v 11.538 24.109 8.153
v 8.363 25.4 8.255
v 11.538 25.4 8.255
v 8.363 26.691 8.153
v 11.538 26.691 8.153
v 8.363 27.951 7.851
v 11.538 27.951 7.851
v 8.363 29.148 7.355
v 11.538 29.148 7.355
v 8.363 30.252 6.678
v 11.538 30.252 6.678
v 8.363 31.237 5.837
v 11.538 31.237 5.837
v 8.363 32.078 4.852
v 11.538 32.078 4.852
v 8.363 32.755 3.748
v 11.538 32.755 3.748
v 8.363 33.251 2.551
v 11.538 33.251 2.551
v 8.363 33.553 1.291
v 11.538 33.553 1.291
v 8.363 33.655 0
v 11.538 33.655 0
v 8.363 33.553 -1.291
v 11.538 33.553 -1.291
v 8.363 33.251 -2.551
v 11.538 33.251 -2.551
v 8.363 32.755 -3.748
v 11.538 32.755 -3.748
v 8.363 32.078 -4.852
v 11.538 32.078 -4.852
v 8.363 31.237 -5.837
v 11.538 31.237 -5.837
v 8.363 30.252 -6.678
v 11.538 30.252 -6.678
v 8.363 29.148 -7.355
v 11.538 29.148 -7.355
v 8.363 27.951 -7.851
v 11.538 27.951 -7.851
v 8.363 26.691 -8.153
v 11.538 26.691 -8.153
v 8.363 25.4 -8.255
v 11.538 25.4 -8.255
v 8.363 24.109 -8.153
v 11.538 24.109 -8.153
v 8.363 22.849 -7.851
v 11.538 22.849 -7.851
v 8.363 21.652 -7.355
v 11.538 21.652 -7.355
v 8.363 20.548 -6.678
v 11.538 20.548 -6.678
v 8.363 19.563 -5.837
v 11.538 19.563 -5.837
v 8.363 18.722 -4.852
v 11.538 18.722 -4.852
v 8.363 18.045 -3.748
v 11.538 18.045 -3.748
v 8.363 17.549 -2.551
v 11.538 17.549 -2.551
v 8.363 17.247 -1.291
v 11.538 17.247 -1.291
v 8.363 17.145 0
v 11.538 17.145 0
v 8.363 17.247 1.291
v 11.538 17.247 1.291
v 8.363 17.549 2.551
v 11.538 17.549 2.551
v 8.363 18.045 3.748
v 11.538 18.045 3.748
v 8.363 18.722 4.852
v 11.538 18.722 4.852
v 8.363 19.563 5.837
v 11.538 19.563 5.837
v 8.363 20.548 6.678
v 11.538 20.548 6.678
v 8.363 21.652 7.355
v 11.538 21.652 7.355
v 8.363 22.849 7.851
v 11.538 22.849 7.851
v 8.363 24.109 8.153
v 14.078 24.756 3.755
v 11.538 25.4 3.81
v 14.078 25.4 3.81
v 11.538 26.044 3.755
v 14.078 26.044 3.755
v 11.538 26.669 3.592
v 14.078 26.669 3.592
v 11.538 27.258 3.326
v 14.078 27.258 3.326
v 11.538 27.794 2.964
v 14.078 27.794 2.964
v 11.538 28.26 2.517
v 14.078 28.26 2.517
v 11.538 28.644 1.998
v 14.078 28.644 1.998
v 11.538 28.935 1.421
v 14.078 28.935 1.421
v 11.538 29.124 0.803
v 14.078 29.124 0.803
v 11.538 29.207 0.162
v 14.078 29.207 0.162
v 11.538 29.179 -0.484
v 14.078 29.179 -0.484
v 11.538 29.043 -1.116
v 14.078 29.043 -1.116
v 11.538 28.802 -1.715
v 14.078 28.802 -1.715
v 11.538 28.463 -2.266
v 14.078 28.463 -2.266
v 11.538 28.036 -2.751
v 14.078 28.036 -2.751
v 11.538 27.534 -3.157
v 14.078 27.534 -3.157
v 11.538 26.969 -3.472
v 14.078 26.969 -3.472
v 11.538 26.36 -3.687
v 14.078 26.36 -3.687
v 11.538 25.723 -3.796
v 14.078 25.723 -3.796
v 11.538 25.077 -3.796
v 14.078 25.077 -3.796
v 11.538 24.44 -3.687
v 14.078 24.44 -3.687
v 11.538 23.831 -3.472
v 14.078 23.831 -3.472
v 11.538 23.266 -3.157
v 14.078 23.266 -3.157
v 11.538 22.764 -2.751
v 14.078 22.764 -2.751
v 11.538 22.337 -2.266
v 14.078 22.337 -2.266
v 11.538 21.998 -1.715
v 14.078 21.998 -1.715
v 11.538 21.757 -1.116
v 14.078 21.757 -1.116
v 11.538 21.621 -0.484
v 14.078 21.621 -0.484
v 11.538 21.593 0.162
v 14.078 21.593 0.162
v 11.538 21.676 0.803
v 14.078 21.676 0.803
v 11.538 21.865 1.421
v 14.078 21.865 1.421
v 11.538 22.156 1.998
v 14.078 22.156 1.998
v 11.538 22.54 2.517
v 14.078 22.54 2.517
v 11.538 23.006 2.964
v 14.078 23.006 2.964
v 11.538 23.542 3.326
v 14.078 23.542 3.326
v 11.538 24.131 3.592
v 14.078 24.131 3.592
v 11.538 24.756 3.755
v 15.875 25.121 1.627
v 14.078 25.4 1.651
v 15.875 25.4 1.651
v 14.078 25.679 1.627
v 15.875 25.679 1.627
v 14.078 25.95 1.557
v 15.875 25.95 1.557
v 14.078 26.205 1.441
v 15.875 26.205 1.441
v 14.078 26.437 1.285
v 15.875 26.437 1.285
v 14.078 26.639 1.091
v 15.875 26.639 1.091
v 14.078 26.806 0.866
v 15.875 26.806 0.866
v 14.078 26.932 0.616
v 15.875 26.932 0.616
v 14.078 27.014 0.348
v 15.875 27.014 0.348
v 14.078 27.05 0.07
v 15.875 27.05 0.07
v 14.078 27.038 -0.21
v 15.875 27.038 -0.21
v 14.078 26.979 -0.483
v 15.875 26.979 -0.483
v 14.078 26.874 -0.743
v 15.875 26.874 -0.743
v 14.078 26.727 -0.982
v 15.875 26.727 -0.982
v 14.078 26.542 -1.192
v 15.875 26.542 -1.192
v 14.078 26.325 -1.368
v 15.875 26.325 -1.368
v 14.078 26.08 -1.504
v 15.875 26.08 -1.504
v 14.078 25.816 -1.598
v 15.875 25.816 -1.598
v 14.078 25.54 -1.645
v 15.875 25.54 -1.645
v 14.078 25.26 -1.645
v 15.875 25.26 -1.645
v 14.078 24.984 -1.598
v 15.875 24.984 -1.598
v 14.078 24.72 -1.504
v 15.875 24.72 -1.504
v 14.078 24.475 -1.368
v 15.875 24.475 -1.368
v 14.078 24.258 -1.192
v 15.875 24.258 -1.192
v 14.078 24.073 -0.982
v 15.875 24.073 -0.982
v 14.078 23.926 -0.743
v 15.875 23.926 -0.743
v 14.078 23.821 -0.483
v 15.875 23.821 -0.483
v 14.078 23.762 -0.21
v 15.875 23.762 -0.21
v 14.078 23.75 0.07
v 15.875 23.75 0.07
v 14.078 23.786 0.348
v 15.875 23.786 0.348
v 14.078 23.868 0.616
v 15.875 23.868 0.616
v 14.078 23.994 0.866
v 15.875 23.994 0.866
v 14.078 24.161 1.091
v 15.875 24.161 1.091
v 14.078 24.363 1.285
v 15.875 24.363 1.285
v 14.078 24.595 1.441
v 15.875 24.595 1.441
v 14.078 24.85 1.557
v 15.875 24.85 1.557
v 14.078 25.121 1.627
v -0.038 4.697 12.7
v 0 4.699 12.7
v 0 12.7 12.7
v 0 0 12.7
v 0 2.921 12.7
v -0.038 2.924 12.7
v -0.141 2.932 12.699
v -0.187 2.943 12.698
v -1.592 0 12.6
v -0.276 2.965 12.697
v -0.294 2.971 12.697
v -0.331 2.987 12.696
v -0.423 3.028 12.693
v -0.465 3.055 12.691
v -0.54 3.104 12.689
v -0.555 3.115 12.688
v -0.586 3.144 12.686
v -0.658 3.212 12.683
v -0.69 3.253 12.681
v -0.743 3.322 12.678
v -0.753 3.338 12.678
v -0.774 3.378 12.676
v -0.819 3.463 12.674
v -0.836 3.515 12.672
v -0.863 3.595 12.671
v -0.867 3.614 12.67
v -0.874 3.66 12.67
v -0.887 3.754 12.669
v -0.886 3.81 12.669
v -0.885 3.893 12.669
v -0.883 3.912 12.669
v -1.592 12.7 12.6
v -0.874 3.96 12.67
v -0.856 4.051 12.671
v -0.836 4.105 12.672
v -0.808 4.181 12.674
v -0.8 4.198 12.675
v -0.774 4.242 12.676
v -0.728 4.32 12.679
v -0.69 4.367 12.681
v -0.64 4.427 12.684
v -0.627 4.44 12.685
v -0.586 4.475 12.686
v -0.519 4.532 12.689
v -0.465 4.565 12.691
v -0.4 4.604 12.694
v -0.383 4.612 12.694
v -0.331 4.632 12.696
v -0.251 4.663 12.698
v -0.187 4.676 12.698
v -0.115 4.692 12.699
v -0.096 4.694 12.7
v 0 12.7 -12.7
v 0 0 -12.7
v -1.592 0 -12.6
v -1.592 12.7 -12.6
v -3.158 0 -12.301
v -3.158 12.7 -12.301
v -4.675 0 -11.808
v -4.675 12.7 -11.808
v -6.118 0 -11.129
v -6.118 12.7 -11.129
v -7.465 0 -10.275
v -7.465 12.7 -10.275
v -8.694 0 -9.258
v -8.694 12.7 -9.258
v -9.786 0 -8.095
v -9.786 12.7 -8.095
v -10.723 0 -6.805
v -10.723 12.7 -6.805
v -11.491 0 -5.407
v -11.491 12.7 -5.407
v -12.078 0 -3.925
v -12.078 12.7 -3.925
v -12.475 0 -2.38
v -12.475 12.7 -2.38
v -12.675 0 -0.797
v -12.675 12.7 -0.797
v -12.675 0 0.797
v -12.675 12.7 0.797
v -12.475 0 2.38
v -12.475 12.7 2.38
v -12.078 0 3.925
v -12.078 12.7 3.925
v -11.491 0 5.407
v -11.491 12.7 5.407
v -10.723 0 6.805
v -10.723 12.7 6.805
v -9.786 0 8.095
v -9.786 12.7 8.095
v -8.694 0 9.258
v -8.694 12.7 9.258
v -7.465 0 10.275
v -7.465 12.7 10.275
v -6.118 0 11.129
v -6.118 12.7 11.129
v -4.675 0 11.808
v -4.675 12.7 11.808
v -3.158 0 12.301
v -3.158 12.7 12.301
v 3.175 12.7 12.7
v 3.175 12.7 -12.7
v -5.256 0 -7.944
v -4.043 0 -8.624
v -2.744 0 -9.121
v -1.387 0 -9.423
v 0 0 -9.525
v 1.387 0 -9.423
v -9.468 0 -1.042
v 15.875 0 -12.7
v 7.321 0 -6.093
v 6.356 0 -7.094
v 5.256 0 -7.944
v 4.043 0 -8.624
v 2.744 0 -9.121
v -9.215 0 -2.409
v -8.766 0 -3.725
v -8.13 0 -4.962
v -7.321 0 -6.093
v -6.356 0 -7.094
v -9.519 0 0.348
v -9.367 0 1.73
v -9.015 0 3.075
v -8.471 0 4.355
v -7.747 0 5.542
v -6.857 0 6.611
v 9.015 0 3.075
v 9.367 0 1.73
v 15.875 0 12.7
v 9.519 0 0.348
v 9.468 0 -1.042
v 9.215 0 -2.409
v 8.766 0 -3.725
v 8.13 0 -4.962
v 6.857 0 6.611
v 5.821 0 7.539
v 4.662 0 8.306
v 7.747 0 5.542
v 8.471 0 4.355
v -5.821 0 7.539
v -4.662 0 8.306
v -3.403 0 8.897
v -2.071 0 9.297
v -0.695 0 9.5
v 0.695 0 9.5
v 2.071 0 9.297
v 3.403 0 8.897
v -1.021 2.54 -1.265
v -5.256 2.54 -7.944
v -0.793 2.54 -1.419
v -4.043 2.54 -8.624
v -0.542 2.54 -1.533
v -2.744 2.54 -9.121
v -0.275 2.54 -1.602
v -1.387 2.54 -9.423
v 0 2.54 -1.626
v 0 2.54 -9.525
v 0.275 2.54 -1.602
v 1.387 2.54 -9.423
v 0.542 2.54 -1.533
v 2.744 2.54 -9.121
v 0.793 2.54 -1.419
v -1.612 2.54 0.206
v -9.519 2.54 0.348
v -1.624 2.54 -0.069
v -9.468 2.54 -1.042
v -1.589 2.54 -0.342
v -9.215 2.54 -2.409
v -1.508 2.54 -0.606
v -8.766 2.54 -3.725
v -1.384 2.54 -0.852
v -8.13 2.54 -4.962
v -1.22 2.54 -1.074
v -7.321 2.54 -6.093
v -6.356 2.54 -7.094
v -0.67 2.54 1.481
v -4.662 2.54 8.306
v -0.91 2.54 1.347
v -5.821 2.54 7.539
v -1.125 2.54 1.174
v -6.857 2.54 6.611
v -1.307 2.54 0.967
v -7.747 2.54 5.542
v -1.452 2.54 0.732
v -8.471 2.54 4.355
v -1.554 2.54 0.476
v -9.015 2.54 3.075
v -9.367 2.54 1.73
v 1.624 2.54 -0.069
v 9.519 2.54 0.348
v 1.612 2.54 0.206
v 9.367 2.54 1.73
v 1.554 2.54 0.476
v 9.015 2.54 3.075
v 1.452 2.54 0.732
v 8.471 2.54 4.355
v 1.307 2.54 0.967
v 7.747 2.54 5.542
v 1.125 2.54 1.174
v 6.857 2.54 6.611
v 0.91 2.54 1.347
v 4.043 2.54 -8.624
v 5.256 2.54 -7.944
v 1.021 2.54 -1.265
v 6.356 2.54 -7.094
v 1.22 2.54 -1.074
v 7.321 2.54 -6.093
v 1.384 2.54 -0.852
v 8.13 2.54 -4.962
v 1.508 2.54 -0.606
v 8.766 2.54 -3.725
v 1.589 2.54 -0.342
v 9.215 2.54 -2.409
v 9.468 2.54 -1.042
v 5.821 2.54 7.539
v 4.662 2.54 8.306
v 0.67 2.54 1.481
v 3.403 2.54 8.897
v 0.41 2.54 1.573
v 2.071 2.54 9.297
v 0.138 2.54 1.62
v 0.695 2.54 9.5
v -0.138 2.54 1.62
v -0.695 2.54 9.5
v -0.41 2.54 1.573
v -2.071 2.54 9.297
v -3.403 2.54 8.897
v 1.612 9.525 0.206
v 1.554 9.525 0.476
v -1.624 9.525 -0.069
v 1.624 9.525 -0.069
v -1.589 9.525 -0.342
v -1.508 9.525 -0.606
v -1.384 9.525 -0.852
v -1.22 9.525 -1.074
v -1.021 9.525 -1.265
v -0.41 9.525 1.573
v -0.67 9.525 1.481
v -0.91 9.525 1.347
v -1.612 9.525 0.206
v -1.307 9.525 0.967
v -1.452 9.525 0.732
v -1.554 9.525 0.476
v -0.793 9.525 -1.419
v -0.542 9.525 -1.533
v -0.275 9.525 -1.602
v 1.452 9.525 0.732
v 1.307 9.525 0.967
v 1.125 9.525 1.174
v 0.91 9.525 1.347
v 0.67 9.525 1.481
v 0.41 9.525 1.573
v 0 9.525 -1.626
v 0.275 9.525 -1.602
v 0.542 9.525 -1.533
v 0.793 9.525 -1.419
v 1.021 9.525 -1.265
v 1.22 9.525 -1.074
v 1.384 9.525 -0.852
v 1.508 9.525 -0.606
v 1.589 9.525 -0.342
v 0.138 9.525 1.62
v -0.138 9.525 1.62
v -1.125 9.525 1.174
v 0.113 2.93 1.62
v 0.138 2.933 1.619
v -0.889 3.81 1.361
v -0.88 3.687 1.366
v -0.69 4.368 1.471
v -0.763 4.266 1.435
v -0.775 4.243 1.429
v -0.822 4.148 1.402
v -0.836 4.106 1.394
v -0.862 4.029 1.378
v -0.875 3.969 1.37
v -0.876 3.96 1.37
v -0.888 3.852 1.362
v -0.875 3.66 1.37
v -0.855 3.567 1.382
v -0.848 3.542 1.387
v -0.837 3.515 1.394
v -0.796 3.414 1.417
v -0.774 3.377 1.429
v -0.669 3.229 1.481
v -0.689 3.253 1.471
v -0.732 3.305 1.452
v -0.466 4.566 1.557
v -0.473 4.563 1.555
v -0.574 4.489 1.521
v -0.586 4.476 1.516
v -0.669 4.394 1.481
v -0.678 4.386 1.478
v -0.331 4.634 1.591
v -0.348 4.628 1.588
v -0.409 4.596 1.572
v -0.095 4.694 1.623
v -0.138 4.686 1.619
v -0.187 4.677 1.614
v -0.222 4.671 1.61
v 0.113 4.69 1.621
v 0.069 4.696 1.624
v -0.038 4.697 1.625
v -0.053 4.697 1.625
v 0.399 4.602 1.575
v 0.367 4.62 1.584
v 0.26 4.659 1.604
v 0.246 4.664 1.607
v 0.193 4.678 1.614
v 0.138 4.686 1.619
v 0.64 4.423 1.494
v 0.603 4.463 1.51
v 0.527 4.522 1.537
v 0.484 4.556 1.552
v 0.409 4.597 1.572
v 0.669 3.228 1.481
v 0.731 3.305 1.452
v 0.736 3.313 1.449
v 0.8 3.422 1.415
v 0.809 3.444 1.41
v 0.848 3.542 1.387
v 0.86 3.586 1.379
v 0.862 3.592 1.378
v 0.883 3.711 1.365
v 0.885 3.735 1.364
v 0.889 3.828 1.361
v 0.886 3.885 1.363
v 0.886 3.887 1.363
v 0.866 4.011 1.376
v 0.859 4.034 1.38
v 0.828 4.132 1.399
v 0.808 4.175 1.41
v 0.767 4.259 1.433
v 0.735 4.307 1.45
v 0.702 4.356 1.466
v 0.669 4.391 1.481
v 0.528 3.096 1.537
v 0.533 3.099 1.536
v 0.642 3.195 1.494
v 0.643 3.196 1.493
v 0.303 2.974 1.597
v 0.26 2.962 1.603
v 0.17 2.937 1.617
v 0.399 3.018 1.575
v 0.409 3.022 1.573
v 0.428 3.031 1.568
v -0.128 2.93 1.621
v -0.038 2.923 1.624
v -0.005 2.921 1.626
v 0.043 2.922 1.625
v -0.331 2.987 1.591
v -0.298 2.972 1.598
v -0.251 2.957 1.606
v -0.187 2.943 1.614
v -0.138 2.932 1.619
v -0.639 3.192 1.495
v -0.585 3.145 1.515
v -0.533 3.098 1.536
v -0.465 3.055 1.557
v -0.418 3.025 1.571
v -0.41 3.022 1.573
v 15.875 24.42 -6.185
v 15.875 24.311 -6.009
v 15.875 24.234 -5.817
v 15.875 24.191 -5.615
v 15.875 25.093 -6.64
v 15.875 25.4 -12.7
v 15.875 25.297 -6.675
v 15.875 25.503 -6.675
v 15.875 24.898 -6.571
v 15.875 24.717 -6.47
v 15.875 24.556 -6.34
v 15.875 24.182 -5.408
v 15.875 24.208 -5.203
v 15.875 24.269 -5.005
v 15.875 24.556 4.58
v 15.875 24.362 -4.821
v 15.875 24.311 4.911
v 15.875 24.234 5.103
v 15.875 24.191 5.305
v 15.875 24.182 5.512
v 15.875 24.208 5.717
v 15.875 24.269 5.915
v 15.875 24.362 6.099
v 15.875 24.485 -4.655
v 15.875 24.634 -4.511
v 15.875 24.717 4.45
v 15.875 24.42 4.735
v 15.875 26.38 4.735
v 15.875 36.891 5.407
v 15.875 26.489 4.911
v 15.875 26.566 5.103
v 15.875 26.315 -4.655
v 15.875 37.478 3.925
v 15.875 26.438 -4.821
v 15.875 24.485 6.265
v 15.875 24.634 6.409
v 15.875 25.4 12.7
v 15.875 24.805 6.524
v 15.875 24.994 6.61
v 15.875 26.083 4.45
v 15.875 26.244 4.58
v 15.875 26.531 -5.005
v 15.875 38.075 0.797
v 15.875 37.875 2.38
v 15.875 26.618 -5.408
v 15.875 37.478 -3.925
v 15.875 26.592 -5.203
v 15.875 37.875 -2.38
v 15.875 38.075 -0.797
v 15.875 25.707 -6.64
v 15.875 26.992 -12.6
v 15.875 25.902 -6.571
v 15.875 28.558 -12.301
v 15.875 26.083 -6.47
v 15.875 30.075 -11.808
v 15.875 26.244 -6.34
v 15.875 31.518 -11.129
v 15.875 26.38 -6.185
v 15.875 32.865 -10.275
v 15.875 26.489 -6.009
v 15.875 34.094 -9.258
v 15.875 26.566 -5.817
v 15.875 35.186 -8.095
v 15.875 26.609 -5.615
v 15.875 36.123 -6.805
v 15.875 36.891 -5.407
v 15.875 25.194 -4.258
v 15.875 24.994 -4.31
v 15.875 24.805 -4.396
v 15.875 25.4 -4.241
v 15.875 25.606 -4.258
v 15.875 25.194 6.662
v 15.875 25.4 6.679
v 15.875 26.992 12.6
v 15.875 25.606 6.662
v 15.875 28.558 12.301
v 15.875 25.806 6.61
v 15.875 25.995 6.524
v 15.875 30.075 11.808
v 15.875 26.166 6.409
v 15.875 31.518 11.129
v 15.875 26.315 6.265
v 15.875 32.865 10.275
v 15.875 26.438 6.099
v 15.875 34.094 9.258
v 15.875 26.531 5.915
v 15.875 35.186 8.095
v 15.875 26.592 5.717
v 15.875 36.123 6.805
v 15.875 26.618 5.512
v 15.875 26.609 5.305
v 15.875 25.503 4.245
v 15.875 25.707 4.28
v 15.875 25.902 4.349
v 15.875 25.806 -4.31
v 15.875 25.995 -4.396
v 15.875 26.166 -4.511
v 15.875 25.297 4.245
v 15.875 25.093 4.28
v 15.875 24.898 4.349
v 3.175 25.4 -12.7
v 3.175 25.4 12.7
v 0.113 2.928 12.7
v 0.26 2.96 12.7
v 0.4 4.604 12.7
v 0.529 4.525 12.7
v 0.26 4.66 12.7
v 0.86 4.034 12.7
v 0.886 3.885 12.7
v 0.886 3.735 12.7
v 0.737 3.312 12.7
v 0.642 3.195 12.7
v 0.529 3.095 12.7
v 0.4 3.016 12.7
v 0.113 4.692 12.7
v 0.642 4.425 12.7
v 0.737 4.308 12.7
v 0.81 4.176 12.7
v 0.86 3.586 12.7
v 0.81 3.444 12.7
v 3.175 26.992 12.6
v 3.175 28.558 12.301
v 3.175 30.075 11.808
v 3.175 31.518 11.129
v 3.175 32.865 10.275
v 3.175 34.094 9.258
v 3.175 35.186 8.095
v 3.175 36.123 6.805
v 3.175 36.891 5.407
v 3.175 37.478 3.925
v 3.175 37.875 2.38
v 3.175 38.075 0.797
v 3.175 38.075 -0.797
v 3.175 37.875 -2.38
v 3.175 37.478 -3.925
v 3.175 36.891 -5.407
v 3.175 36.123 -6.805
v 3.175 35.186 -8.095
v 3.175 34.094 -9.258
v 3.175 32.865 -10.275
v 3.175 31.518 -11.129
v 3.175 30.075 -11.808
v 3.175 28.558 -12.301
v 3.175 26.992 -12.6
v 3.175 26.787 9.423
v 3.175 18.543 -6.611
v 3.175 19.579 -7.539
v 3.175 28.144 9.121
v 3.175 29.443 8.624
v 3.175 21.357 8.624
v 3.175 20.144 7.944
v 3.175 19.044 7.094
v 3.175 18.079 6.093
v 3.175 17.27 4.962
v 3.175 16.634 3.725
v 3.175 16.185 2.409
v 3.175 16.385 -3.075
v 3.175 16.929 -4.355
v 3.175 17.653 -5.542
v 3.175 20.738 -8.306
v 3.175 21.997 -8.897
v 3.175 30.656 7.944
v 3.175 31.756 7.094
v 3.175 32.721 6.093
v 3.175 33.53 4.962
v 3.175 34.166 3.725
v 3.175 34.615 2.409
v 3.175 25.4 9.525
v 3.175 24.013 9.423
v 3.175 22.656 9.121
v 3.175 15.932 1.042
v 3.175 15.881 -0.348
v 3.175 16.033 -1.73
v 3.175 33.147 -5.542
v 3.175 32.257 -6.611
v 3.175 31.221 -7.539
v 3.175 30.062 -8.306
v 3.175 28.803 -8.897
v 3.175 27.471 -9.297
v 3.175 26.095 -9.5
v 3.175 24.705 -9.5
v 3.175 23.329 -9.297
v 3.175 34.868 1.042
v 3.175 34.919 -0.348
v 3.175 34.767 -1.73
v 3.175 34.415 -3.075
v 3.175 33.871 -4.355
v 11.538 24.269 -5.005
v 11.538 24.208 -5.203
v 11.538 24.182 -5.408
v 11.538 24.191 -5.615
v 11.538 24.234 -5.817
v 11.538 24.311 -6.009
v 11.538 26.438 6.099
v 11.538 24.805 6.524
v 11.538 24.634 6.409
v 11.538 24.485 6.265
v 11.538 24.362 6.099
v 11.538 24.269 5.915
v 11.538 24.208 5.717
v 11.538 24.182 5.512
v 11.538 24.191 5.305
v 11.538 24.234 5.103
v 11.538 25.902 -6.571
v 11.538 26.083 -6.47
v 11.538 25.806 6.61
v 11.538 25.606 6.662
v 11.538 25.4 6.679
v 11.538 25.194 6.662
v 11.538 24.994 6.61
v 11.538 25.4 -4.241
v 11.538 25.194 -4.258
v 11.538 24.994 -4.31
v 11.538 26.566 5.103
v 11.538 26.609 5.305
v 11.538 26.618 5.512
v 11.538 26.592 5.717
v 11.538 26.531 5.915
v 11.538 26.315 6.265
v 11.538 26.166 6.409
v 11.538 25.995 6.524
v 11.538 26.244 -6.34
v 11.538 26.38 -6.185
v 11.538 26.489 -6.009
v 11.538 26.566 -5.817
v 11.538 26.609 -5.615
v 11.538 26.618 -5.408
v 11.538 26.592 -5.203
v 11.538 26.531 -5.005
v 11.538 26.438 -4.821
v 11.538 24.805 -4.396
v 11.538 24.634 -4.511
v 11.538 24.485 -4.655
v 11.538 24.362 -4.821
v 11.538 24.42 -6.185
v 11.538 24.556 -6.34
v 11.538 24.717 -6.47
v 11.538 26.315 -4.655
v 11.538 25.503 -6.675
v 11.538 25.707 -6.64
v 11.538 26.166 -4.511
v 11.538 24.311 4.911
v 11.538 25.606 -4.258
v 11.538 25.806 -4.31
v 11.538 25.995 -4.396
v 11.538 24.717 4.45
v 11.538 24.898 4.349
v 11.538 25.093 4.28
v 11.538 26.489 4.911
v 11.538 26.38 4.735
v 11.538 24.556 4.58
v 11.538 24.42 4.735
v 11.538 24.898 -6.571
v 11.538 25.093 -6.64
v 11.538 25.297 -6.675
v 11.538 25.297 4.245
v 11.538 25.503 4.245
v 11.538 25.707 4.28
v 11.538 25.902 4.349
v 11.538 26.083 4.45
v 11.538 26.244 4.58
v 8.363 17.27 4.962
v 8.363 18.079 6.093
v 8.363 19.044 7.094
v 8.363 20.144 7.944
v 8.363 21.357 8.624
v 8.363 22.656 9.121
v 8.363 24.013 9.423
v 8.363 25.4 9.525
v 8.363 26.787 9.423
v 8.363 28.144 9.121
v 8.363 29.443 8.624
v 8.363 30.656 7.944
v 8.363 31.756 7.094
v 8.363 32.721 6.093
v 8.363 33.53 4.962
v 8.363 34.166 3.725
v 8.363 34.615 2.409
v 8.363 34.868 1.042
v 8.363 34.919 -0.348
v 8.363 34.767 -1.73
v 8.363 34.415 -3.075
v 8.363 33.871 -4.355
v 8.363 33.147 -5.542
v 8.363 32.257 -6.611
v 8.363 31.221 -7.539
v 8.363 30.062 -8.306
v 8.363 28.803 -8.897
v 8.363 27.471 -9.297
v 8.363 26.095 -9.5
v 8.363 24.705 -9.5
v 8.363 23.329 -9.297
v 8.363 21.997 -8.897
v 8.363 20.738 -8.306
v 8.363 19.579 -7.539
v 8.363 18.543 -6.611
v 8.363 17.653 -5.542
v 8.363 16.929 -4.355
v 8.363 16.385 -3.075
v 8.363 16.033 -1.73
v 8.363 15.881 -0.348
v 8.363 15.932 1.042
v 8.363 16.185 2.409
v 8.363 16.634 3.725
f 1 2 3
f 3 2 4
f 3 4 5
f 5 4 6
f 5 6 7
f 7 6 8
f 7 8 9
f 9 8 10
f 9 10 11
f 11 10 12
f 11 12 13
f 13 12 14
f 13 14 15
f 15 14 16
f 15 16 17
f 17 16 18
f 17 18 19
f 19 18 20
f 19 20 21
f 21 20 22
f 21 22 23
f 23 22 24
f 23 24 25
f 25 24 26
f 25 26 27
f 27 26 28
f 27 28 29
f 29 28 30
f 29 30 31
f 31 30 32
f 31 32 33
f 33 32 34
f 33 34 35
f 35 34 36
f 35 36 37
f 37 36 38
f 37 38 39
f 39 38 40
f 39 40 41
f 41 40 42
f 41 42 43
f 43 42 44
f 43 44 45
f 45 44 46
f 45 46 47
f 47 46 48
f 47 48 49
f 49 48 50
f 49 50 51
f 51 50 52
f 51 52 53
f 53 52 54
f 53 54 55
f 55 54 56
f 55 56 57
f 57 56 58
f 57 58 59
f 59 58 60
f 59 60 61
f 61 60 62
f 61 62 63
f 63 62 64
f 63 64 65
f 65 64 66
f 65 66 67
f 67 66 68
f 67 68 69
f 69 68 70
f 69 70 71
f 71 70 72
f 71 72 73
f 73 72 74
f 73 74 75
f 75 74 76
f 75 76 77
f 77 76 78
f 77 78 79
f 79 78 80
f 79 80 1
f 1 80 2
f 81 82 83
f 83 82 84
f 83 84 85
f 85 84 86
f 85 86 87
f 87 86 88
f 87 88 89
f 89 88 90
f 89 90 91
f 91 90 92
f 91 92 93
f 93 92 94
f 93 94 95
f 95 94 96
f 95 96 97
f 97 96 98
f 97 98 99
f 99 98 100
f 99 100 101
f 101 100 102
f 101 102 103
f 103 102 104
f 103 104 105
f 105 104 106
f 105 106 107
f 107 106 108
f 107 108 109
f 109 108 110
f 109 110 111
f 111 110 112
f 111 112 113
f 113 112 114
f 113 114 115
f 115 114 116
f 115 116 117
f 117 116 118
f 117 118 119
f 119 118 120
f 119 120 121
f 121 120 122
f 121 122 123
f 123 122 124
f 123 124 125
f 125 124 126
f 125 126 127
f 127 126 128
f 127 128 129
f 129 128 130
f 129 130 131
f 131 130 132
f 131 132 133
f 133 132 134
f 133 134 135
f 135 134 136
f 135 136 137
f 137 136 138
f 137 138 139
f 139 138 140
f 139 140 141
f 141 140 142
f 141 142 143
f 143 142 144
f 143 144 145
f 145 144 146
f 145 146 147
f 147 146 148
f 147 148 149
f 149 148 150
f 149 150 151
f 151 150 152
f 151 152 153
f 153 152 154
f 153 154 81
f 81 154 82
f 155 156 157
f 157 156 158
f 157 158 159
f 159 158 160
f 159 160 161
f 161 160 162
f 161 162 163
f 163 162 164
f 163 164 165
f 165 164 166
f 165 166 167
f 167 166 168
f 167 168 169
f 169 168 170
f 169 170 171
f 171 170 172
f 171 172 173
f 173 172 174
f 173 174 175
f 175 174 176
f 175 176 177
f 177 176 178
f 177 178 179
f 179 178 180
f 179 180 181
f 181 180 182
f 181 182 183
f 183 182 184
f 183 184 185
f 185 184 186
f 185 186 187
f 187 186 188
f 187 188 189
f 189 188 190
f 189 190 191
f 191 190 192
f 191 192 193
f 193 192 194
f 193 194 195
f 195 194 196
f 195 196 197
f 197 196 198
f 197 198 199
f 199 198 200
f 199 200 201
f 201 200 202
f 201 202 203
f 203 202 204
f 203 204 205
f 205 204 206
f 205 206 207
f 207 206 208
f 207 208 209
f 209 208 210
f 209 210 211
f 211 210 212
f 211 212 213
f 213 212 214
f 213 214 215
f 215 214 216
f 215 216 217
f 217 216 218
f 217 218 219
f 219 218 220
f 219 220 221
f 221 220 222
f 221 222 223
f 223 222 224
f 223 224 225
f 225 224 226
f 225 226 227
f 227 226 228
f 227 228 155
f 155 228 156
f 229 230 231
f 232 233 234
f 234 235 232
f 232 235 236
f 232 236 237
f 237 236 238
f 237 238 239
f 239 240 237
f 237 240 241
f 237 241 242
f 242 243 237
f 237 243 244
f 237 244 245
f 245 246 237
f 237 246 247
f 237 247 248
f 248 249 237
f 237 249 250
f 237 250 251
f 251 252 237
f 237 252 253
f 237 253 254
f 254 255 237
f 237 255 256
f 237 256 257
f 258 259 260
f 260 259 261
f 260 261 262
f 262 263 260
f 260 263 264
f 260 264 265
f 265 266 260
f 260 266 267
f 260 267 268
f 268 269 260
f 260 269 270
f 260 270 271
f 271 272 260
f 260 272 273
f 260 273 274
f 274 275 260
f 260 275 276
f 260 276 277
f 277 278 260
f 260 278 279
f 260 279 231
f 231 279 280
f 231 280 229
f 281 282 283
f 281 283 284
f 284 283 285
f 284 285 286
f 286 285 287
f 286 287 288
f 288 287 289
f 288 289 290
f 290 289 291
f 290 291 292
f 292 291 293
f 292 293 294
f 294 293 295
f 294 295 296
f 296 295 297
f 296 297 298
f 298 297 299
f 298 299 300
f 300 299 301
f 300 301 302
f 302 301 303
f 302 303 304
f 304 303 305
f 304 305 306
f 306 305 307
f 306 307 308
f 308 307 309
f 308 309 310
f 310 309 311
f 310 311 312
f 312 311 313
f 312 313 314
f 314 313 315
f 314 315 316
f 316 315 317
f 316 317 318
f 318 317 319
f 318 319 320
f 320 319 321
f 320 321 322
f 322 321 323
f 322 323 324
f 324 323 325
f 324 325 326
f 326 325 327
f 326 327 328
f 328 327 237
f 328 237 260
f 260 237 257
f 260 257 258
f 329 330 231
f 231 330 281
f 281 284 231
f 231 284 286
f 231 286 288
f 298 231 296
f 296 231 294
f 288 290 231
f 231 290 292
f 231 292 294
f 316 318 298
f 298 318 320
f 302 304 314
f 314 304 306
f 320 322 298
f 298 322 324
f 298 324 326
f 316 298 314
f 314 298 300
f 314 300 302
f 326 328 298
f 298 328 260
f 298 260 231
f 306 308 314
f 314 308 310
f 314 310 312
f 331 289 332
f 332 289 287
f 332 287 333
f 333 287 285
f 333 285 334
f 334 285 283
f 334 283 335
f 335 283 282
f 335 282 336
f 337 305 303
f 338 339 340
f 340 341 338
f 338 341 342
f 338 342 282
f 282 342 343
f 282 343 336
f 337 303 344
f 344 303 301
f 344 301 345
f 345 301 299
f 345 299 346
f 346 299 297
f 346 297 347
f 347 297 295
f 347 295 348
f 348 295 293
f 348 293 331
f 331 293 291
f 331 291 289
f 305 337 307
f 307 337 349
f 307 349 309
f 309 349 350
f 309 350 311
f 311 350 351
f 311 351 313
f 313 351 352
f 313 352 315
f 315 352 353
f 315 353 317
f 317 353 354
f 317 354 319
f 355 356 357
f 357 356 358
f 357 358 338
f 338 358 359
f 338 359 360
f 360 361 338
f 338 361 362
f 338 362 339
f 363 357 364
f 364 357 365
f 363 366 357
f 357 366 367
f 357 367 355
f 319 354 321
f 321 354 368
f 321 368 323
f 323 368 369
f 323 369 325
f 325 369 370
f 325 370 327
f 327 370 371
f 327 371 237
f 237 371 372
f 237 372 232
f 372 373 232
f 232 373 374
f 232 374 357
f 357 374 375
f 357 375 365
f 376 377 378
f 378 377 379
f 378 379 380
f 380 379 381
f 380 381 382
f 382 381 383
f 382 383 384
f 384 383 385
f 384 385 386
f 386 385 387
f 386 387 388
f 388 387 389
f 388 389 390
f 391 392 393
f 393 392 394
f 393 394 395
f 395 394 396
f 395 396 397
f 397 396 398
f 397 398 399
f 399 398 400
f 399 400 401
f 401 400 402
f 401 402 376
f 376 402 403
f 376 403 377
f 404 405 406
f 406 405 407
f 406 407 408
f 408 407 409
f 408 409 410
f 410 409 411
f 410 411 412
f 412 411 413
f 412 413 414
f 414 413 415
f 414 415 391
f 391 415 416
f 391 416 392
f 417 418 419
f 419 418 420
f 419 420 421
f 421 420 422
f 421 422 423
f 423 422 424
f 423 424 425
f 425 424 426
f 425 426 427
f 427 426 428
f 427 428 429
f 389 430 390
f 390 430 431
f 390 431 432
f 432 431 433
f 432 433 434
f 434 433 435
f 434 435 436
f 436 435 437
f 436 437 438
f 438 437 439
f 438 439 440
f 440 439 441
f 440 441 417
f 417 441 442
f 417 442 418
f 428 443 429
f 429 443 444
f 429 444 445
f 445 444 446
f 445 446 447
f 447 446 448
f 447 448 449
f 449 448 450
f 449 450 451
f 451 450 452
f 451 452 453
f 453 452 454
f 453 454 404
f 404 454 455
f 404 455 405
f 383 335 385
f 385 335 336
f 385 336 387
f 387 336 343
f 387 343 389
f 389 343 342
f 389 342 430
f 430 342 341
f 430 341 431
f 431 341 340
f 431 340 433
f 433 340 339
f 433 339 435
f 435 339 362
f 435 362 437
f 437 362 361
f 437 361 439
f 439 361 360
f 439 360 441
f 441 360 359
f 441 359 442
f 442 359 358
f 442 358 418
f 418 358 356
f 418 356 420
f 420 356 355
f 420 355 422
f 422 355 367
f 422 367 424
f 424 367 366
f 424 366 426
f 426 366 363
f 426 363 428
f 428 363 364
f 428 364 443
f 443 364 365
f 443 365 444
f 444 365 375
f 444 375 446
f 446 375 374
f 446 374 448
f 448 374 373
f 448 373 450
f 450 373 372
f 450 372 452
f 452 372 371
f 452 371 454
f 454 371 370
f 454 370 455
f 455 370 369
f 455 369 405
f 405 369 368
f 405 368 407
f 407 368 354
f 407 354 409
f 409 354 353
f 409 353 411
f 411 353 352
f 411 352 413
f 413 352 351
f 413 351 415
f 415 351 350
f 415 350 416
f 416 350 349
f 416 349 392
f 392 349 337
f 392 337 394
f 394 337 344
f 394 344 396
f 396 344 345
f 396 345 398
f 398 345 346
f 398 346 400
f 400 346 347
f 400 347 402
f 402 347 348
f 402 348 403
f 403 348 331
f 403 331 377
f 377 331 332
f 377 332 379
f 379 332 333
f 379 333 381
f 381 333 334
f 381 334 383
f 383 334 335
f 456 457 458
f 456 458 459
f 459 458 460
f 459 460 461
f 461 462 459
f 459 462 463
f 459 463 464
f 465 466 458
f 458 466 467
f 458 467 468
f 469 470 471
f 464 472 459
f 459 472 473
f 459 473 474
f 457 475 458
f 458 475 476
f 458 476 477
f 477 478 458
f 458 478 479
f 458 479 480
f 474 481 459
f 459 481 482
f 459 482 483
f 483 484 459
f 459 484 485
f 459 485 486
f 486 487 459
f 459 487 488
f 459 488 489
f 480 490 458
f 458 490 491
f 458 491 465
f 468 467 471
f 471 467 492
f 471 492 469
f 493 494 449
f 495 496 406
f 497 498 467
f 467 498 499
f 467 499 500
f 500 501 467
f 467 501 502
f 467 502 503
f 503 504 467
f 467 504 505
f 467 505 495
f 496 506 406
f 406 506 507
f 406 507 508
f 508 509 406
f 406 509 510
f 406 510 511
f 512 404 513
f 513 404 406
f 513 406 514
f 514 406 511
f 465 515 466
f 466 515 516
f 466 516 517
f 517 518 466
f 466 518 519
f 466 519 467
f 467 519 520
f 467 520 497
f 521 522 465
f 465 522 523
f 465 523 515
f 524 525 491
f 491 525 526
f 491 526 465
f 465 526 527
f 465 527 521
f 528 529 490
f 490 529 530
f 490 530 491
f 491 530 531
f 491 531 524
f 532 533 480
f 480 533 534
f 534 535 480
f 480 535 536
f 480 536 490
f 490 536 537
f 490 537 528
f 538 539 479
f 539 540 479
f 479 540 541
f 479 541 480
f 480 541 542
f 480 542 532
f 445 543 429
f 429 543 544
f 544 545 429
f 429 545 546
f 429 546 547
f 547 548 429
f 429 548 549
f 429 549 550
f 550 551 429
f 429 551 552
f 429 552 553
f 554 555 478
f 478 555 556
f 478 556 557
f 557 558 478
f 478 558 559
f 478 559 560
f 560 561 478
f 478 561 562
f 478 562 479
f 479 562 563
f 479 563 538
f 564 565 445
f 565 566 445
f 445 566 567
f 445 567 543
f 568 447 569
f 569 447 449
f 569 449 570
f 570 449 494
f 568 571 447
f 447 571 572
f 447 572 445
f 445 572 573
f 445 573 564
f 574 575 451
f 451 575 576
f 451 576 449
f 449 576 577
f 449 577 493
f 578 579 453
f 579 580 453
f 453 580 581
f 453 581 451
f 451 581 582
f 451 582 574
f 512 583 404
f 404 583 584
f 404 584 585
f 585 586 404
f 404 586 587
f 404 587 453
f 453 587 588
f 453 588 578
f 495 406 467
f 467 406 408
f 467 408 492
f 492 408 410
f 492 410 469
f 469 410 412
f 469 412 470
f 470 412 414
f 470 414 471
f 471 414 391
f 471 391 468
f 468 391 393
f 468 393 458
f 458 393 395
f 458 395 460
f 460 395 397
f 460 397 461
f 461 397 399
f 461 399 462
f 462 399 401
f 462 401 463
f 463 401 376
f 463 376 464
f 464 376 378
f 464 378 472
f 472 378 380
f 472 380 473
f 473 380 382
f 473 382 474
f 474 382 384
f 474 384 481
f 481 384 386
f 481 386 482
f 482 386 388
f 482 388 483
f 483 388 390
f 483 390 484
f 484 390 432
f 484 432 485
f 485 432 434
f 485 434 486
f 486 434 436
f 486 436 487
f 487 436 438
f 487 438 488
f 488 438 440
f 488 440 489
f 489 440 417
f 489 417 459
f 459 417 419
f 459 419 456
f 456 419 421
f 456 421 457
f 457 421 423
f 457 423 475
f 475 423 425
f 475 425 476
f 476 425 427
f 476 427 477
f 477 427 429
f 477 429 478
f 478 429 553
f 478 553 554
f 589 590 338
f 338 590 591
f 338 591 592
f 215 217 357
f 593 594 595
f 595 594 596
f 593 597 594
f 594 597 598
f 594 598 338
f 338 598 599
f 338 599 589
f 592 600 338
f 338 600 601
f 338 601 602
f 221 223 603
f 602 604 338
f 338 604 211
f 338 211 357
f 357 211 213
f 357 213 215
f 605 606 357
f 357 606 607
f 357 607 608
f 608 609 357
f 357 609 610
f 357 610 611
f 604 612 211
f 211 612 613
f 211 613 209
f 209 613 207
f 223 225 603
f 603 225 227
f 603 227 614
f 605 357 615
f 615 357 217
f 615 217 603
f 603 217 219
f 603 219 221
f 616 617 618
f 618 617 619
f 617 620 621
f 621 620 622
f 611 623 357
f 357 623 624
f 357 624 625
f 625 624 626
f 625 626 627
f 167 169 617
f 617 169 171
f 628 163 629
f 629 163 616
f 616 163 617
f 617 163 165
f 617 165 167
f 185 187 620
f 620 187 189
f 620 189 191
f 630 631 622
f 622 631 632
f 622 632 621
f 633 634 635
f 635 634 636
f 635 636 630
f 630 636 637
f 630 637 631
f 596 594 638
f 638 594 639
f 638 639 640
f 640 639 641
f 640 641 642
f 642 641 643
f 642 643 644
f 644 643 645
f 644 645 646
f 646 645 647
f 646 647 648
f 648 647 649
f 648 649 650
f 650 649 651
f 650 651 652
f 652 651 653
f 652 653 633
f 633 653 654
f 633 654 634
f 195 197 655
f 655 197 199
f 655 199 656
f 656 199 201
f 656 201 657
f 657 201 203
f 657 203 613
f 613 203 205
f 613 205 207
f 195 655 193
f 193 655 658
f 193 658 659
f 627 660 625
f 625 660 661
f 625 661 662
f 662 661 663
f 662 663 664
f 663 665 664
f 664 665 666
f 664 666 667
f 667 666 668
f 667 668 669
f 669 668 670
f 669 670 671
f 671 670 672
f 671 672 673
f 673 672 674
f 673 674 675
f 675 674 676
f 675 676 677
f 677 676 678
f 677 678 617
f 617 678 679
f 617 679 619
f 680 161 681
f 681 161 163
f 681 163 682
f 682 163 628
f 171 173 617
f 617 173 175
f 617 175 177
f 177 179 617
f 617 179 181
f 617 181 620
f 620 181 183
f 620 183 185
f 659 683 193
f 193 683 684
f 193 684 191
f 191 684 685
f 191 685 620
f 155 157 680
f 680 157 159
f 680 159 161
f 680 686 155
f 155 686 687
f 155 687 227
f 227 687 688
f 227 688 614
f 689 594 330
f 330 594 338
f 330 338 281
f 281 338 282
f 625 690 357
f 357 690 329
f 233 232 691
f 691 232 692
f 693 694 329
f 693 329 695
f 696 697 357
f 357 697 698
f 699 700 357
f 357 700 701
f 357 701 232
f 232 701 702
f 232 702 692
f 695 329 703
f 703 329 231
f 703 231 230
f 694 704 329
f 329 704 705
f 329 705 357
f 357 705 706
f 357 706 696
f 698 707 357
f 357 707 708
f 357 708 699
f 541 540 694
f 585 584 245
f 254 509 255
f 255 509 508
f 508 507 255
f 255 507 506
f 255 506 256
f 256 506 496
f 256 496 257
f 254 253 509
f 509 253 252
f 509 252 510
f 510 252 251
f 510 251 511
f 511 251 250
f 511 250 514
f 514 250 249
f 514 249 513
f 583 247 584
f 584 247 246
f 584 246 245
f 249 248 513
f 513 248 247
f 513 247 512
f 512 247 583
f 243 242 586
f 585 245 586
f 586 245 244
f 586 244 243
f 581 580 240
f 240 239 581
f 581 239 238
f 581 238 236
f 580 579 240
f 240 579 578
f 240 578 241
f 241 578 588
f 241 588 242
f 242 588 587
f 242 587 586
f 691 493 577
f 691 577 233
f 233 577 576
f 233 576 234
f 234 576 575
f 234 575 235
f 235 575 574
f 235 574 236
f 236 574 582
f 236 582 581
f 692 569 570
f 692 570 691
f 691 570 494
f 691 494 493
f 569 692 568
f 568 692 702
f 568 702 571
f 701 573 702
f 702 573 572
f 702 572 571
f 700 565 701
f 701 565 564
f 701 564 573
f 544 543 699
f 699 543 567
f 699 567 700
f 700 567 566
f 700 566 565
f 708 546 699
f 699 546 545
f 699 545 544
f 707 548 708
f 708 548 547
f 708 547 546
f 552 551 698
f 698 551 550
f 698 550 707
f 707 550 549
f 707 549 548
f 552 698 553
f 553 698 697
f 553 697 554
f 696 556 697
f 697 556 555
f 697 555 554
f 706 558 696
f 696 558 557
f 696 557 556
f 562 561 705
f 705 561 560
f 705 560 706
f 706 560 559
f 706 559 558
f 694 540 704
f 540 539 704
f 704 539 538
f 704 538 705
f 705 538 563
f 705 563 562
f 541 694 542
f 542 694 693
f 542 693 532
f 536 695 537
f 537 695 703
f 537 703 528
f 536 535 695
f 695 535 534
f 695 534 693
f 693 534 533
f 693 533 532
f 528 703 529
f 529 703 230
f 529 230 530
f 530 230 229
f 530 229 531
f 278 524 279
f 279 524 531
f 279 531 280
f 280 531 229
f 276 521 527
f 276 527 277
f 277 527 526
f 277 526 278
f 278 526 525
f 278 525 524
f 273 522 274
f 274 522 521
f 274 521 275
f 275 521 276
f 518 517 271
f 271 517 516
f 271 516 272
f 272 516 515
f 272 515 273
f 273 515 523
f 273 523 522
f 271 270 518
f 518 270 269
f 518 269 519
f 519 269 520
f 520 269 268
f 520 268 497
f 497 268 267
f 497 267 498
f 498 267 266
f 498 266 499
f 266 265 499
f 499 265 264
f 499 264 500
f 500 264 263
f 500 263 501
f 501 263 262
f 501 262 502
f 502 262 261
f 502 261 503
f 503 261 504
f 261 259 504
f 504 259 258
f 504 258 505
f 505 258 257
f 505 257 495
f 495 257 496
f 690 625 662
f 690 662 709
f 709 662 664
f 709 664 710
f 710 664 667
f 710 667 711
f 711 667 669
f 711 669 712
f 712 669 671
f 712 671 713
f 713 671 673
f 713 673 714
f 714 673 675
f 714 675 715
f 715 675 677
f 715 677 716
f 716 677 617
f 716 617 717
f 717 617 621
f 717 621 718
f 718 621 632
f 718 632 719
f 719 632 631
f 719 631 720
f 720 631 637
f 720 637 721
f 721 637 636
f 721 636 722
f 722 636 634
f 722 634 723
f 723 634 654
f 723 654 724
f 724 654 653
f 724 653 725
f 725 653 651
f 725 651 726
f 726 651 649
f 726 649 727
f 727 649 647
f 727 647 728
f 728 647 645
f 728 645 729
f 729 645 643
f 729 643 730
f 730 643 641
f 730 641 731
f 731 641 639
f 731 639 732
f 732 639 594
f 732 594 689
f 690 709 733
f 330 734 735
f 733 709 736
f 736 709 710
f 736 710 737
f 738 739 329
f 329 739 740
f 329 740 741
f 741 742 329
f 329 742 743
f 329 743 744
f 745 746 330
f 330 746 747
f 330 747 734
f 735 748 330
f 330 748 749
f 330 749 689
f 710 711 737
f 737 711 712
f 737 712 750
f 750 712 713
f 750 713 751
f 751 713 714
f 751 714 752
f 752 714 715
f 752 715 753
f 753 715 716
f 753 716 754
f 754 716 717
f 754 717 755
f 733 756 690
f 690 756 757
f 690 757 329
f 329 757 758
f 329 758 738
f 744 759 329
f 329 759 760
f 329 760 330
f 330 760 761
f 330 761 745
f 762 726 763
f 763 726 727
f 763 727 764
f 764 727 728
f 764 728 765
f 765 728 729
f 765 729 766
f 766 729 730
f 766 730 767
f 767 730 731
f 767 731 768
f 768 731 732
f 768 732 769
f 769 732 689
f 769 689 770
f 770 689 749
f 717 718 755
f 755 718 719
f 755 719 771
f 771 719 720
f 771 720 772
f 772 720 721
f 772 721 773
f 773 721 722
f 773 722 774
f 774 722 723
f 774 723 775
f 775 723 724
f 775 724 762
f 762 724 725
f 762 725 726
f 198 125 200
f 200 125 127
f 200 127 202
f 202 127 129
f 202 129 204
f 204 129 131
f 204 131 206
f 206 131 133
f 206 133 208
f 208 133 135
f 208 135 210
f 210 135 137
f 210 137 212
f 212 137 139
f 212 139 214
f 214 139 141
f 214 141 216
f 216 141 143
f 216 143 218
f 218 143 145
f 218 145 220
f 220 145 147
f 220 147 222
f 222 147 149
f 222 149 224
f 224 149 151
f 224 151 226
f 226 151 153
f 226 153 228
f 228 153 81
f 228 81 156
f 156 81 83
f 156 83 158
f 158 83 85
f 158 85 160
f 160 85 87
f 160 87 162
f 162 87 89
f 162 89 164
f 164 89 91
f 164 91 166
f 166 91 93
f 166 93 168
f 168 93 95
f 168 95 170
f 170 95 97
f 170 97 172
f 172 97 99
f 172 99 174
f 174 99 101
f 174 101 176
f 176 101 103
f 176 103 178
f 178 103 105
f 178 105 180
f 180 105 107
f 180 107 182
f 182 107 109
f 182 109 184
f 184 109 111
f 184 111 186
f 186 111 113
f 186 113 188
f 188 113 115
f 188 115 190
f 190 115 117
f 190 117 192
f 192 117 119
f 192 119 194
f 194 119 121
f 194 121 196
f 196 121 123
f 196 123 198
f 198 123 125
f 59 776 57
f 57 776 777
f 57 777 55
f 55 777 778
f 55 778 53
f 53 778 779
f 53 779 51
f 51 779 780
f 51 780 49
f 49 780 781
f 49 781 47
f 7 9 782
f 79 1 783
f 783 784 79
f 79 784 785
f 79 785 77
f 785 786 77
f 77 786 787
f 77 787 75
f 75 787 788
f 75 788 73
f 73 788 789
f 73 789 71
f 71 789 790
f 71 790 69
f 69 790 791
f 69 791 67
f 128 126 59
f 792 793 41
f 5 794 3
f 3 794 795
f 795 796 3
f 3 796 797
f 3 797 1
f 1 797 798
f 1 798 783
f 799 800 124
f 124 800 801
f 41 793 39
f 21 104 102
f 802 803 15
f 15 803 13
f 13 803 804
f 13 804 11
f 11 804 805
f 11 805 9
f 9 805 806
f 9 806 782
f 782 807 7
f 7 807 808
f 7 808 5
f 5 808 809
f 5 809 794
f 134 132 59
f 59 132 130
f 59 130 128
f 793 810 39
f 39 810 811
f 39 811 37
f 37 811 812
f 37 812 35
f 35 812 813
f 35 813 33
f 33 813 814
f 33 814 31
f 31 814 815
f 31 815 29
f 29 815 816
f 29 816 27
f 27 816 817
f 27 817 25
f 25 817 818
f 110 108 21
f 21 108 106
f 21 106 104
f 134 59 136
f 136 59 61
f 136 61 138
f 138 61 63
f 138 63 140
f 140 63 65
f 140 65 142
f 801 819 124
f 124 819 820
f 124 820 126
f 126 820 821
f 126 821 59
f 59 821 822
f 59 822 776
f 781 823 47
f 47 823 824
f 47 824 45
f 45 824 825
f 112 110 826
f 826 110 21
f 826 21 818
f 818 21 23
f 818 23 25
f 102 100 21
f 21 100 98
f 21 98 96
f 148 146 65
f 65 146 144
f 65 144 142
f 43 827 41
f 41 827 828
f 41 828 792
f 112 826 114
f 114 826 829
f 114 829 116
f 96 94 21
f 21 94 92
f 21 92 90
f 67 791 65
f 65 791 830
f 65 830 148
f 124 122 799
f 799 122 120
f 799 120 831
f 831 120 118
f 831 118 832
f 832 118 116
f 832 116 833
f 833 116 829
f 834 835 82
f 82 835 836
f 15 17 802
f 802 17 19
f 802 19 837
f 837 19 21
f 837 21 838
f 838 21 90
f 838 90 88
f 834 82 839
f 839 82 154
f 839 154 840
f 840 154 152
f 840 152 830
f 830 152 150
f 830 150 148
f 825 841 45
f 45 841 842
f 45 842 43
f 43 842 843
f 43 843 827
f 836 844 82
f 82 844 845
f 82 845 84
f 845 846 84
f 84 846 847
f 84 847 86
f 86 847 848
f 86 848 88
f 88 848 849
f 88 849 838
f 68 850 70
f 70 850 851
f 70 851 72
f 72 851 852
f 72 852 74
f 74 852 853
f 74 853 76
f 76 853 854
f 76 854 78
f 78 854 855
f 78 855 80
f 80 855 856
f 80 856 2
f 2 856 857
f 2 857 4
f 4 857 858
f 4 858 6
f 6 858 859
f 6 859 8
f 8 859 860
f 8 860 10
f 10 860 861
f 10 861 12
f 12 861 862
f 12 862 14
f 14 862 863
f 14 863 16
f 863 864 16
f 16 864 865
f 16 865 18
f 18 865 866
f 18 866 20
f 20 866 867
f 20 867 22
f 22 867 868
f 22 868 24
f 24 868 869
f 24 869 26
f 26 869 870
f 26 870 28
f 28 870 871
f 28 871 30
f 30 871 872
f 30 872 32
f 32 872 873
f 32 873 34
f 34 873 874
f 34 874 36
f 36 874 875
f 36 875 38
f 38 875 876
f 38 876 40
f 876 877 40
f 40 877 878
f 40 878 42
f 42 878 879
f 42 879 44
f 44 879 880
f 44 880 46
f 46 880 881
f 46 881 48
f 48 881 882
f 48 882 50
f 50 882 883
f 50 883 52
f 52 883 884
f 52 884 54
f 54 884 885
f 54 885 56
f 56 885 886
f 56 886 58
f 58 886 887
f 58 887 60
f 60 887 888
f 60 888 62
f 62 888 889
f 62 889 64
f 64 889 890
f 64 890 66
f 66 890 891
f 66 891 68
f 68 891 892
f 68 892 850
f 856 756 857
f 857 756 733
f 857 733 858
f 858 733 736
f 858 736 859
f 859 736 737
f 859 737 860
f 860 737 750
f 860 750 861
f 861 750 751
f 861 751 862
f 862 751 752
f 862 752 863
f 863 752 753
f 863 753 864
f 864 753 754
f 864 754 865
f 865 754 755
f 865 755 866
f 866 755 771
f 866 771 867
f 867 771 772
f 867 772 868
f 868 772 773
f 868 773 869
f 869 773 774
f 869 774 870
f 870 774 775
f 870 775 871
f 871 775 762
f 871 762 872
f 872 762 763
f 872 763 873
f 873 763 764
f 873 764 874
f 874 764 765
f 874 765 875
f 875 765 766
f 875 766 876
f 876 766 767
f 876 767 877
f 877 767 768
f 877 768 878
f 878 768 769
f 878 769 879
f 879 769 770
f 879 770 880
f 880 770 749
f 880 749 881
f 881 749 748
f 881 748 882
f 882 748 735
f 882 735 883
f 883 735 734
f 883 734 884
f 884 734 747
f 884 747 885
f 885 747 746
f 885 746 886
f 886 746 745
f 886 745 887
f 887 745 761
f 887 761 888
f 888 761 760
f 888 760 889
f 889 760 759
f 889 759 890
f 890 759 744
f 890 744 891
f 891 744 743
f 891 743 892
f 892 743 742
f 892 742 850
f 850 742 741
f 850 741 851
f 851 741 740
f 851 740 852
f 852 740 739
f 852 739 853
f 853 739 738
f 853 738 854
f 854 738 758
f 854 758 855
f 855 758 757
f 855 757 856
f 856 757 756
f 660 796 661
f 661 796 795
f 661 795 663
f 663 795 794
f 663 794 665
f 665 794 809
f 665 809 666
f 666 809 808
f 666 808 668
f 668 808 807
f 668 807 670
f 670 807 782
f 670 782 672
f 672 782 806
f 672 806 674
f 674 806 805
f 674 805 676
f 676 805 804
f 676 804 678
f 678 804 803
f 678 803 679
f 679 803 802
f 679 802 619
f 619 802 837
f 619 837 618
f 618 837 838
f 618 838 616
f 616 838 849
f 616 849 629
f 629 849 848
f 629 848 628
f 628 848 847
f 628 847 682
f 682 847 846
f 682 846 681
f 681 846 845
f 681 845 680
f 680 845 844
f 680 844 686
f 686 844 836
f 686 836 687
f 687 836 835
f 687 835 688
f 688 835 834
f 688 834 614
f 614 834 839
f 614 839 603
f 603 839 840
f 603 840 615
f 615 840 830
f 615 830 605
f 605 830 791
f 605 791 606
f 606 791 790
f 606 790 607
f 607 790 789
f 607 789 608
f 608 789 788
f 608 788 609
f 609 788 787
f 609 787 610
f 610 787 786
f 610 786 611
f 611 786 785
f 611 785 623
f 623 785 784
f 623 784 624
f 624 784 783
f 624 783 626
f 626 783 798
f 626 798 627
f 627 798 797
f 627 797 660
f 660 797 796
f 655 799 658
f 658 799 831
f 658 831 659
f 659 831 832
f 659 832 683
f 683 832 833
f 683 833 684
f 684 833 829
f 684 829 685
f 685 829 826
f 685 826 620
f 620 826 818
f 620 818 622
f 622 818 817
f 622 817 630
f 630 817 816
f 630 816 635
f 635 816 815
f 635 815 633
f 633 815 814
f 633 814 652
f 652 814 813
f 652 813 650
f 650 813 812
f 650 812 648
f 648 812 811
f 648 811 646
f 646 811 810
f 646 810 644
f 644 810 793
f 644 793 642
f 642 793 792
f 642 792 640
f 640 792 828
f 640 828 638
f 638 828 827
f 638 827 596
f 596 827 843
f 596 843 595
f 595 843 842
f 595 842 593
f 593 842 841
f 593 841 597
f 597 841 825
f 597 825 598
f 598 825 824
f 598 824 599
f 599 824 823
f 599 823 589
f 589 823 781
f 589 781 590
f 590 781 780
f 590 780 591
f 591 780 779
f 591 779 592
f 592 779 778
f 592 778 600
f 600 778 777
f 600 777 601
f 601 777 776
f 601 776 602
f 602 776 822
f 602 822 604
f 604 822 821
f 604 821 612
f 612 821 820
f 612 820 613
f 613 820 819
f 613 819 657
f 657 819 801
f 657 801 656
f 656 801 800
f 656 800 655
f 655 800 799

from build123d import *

# Parameters (mm, degrees)
SKETCH1_R           = 12.7
BOSS_EXTRUDE1_DEPTH = 12.7
SKETCH2_R           = 1.6256
CUT_EXTRUDE1_DEPTH  = 9.525
SKETCH3_R           = 9.525
CUT_EXTRUDE2_DEPTH  = 2.54
BOSS_EXTRUDE6_START = -12.7
BOSS_EXTRUDE6_DEPTH = 12.7
SKETCH15_R          = 12.7
BOSS_EXTRUDE8_DEPTH = 12.7
SKETCH17_R          = 1.651
CUT_EXTRUDE4_DEPTH  = 12.7
SKETCH18_R          = 3.81
CUT_EXTRUDE5_DEPTH  = 10.9027722
SKETCH19_R          = 8.255
CUT_EXTRUDE6_DEPTH  = 8.3627722
SKETCH20_R          = 9.525
CUT_EXTRUDE7_DEPTH  = 5.1877722
SKETCH21_R          = 1.2192
CUT_EXTRUDE8_DEPTH  = 4.3372278


with BuildPart() as part:
    # Sketch1 → Boss-Extrude1 (new body)
    with BuildSketch(Plane(origin=(0, 0, 0), x_dir=(1, 0, 0), z_dir=(0, 1, 0))):
        with Locations(Location((0, 0, 0), (0, 0, 270))):
            Circle(SKETCH1_R)
    extrude(amount=BOSS_EXTRUDE1_DEPTH)

    # Sketch2 → Cut-Extrude1 (cut)
    with BuildSketch(Plane.XZ):
        with Locations(Location((0, 0, 0), (0, 0, 270))):
            Circle(SKETCH2_R)
    extrude(amount=-CUT_EXTRUDE1_DEPTH, mode=Mode.SUBTRACT)

    # Sketch3 → Cut-Extrude2 (cut)
    with BuildSketch(Plane.XZ):
        with Locations(Location((0, 0, 0), (0, 0, 270))):
            Circle(SKETCH3_R)
    extrude(amount=-CUT_EXTRUDE2_DEPTH, mode=Mode.SUBTRACT)

    # Sketch14 → Boss-Extrude6 (add)
    with BuildSketch(Plane(origin=(0, 12.7, 0), x_dir=(1, 0, 0), z_dir=(0, 1, 0)).offset(BOSS_EXTRUDE6_START)):
        with BuildLine():
            Line((15.875, 12.7), (0, 12.7))
            ThreePointArc((0, 12.7), (8.980256121, 8.980256121), (12.7, 0))
            ThreePointArc((12.7, 0), (8.980256121, -8.980256121), (0, -12.7))
            Line((0, -12.7), (15.875, -12.7))
            Line((15.875, -12.7), (15.875, 12.7))
        make_face()
    extrude(amount=BOSS_EXTRUDE6_DEPTH)

    # Sketch5 → #2-56 Tapped Hole1 (revolve, cut)
    with BuildSketch(Plane(origin=(0, 3.81, 0), x_dir=(0, 1, 0), z_dir=(1, 0, 0))):
        Polygon((0, 0), (0, 13.74216509), (0.889, 13.208), (0.889, 0), align=None)
    revolve(axis=Axis((0, 3.81, -6.35), (0, 0, 1)), mode=Mode.SUBTRACT)

    # Sketch15 → Boss-Extrude8 (add)
    with BuildSketch(Plane(origin=(15.875, 0, 0), x_dir=(0, 0, -1), z_dir=(1, 0, 0))):
        with Locations((0, 25.4)):
            Circle(SKETCH15_R)
        with BuildLine():
            ThreePointArc((0, 12.7), (-8.980256121, 16.419743879), (-12.7, 25.4))
            Line((-12.7, 25.4), (-12.7, 12.7))
            Line((-12.7, 12.7), (0, 12.7))
        make_face()
        with BuildLine():
            Line((12.7, 12.7), (12.7, 25.4))
            ThreePointArc((12.7, 25.4), (8.980256121, 16.419743879), (0, 12.7))
            Line((0, 12.7), (12.7, 12.7))
        make_face()
    extrude(amount=-BOSS_EXTRUDE8_DEPTH)

    # Sketch17 → Cut-Extrude4 (cut)
    with BuildSketch(Plane.ZY.offset(-3.175)):
        with Locations((0, 25.4)):
            Circle(SKETCH17_R)
    extrude(amount=-CUT_EXTRUDE4_DEPTH, mode=Mode.SUBTRACT)

    # Sketch18 → Cut-Extrude5 (cut)
    with BuildSketch(Plane.ZY.offset(-3.175)):
        with Locations((0, 25.4)):
            Circle(SKETCH18_R)
    extrude(amount=-CUT_EXTRUDE5_DEPTH, mode=Mode.SUBTRACT)

    # Sketch19 → Cut-Extrude6 (cut)
    with BuildSketch(Plane.ZY.offset(-3.175)):
        with Locations((0, 25.4)):
            Circle(SKETCH19_R)
    extrude(amount=-CUT_EXTRUDE6_DEPTH, mode=Mode.SUBTRACT)

    # Sketch20 → Cut-Extrude7 (cut)
    with BuildSketch(Plane.ZY.offset(-3.175)):
        with Locations((0, 25.4)):
            Circle(SKETCH20_R)
    extrude(amount=-CUT_EXTRUDE7_DEPTH, mode=Mode.SUBTRACT)

    # Sketch21 → Cut-Extrude8 (cut)
    with BuildSketch(Plane.ZY.offset(-11.5377722)):
        with Locations((5.4599967, 25.4)):
            Circle(SKETCH21_R)
        with Locations((-5.4599967, 25.4)):
            Circle(SKETCH21_R)
    extrude(amount=-CUT_EXTRUDE8_DEPTH, mode=Mode.SUBTRACT)


solid = part.part
